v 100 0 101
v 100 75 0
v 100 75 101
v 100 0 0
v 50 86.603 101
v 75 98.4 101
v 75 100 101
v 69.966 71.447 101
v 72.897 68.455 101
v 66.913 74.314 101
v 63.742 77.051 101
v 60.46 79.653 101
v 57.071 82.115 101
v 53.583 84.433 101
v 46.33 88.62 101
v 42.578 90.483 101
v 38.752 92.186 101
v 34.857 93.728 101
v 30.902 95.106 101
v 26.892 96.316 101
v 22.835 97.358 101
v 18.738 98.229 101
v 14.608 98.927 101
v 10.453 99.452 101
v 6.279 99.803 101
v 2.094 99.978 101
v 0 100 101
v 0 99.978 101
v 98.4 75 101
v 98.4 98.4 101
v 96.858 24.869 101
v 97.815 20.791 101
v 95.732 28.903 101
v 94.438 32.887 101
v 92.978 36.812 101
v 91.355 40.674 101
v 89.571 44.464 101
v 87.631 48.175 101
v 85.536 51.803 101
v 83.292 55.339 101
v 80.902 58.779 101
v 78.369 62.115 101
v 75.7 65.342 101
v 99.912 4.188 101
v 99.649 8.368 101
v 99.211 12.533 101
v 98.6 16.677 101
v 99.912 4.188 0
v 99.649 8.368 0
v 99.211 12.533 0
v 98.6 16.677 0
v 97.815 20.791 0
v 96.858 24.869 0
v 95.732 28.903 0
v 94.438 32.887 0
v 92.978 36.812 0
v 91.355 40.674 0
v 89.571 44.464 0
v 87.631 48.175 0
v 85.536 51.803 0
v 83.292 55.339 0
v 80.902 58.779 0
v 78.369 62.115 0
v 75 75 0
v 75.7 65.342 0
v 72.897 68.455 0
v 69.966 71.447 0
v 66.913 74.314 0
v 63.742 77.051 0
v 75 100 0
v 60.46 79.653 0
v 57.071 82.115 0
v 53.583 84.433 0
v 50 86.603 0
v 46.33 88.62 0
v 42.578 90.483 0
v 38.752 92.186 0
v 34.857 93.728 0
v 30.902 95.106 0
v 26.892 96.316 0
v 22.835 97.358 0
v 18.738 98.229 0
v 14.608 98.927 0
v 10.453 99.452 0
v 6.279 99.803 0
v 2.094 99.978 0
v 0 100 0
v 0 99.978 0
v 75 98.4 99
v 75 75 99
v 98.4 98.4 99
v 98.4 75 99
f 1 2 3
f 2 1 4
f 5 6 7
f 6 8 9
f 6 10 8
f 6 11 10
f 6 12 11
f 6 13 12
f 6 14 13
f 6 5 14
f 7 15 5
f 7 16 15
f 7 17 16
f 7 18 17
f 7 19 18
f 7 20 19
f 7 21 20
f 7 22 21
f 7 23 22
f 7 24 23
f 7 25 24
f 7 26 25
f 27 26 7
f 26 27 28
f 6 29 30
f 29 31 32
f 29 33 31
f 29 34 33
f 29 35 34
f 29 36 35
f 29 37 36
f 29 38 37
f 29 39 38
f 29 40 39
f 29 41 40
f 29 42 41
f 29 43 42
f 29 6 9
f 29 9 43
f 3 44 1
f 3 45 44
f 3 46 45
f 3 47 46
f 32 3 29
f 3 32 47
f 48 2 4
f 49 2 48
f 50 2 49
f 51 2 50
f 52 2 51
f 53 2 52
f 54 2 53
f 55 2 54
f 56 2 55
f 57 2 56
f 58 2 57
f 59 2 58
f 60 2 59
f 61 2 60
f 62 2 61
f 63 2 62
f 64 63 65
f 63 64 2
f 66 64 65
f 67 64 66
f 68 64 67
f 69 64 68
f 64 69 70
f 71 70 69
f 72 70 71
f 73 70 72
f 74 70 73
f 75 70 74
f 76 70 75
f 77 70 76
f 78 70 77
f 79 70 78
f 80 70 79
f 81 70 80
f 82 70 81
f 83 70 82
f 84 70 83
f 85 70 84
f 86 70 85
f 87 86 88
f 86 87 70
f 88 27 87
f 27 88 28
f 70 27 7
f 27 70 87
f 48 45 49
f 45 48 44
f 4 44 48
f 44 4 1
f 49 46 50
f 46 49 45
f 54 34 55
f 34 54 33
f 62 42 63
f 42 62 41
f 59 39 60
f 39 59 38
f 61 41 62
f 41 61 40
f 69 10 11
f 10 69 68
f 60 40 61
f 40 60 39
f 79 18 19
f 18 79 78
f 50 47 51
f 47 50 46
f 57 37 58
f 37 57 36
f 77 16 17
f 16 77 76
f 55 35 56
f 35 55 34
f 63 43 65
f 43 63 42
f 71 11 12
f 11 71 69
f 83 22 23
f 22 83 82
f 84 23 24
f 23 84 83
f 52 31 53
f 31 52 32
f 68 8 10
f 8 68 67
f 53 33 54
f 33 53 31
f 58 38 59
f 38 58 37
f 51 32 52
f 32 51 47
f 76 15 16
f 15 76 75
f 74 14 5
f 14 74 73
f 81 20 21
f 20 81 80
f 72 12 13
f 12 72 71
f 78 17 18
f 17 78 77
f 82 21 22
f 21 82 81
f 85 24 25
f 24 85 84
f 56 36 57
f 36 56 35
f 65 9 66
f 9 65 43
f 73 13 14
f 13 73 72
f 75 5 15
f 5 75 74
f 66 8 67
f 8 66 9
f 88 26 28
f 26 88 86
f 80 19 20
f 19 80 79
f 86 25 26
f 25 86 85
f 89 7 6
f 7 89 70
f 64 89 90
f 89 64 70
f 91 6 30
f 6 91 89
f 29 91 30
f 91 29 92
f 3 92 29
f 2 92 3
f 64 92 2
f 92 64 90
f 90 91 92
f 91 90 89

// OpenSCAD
innerRadius = 100;
fullHeight = 101;
sheet = 2;
shapeL = 25;
widthL = 1.6;
$fn=150;



difference()//2
{

difference()//1
{
cube([innerRadius,innerRadius, fullHeight]);

cylinder(h=fullHeight, r=innerRadius, center = false);



}//difference 1

translate([innerRadius-shapeL, innerRadius-shapeL, 0])cube([shapeL,shapeL,fullHeight-sheet]);

translate([innerRadius-shapeL, innerRadius-shapeL, 0])Lshape(widthL, shapeL);

}//difference 2




module Lshape(width, length)
{
    translate([0,length-width,0])cube([length,width,fullHeight+1]);
    
    translate([length-width,0,0])cube([width,length,fullHeight+1]);
}
